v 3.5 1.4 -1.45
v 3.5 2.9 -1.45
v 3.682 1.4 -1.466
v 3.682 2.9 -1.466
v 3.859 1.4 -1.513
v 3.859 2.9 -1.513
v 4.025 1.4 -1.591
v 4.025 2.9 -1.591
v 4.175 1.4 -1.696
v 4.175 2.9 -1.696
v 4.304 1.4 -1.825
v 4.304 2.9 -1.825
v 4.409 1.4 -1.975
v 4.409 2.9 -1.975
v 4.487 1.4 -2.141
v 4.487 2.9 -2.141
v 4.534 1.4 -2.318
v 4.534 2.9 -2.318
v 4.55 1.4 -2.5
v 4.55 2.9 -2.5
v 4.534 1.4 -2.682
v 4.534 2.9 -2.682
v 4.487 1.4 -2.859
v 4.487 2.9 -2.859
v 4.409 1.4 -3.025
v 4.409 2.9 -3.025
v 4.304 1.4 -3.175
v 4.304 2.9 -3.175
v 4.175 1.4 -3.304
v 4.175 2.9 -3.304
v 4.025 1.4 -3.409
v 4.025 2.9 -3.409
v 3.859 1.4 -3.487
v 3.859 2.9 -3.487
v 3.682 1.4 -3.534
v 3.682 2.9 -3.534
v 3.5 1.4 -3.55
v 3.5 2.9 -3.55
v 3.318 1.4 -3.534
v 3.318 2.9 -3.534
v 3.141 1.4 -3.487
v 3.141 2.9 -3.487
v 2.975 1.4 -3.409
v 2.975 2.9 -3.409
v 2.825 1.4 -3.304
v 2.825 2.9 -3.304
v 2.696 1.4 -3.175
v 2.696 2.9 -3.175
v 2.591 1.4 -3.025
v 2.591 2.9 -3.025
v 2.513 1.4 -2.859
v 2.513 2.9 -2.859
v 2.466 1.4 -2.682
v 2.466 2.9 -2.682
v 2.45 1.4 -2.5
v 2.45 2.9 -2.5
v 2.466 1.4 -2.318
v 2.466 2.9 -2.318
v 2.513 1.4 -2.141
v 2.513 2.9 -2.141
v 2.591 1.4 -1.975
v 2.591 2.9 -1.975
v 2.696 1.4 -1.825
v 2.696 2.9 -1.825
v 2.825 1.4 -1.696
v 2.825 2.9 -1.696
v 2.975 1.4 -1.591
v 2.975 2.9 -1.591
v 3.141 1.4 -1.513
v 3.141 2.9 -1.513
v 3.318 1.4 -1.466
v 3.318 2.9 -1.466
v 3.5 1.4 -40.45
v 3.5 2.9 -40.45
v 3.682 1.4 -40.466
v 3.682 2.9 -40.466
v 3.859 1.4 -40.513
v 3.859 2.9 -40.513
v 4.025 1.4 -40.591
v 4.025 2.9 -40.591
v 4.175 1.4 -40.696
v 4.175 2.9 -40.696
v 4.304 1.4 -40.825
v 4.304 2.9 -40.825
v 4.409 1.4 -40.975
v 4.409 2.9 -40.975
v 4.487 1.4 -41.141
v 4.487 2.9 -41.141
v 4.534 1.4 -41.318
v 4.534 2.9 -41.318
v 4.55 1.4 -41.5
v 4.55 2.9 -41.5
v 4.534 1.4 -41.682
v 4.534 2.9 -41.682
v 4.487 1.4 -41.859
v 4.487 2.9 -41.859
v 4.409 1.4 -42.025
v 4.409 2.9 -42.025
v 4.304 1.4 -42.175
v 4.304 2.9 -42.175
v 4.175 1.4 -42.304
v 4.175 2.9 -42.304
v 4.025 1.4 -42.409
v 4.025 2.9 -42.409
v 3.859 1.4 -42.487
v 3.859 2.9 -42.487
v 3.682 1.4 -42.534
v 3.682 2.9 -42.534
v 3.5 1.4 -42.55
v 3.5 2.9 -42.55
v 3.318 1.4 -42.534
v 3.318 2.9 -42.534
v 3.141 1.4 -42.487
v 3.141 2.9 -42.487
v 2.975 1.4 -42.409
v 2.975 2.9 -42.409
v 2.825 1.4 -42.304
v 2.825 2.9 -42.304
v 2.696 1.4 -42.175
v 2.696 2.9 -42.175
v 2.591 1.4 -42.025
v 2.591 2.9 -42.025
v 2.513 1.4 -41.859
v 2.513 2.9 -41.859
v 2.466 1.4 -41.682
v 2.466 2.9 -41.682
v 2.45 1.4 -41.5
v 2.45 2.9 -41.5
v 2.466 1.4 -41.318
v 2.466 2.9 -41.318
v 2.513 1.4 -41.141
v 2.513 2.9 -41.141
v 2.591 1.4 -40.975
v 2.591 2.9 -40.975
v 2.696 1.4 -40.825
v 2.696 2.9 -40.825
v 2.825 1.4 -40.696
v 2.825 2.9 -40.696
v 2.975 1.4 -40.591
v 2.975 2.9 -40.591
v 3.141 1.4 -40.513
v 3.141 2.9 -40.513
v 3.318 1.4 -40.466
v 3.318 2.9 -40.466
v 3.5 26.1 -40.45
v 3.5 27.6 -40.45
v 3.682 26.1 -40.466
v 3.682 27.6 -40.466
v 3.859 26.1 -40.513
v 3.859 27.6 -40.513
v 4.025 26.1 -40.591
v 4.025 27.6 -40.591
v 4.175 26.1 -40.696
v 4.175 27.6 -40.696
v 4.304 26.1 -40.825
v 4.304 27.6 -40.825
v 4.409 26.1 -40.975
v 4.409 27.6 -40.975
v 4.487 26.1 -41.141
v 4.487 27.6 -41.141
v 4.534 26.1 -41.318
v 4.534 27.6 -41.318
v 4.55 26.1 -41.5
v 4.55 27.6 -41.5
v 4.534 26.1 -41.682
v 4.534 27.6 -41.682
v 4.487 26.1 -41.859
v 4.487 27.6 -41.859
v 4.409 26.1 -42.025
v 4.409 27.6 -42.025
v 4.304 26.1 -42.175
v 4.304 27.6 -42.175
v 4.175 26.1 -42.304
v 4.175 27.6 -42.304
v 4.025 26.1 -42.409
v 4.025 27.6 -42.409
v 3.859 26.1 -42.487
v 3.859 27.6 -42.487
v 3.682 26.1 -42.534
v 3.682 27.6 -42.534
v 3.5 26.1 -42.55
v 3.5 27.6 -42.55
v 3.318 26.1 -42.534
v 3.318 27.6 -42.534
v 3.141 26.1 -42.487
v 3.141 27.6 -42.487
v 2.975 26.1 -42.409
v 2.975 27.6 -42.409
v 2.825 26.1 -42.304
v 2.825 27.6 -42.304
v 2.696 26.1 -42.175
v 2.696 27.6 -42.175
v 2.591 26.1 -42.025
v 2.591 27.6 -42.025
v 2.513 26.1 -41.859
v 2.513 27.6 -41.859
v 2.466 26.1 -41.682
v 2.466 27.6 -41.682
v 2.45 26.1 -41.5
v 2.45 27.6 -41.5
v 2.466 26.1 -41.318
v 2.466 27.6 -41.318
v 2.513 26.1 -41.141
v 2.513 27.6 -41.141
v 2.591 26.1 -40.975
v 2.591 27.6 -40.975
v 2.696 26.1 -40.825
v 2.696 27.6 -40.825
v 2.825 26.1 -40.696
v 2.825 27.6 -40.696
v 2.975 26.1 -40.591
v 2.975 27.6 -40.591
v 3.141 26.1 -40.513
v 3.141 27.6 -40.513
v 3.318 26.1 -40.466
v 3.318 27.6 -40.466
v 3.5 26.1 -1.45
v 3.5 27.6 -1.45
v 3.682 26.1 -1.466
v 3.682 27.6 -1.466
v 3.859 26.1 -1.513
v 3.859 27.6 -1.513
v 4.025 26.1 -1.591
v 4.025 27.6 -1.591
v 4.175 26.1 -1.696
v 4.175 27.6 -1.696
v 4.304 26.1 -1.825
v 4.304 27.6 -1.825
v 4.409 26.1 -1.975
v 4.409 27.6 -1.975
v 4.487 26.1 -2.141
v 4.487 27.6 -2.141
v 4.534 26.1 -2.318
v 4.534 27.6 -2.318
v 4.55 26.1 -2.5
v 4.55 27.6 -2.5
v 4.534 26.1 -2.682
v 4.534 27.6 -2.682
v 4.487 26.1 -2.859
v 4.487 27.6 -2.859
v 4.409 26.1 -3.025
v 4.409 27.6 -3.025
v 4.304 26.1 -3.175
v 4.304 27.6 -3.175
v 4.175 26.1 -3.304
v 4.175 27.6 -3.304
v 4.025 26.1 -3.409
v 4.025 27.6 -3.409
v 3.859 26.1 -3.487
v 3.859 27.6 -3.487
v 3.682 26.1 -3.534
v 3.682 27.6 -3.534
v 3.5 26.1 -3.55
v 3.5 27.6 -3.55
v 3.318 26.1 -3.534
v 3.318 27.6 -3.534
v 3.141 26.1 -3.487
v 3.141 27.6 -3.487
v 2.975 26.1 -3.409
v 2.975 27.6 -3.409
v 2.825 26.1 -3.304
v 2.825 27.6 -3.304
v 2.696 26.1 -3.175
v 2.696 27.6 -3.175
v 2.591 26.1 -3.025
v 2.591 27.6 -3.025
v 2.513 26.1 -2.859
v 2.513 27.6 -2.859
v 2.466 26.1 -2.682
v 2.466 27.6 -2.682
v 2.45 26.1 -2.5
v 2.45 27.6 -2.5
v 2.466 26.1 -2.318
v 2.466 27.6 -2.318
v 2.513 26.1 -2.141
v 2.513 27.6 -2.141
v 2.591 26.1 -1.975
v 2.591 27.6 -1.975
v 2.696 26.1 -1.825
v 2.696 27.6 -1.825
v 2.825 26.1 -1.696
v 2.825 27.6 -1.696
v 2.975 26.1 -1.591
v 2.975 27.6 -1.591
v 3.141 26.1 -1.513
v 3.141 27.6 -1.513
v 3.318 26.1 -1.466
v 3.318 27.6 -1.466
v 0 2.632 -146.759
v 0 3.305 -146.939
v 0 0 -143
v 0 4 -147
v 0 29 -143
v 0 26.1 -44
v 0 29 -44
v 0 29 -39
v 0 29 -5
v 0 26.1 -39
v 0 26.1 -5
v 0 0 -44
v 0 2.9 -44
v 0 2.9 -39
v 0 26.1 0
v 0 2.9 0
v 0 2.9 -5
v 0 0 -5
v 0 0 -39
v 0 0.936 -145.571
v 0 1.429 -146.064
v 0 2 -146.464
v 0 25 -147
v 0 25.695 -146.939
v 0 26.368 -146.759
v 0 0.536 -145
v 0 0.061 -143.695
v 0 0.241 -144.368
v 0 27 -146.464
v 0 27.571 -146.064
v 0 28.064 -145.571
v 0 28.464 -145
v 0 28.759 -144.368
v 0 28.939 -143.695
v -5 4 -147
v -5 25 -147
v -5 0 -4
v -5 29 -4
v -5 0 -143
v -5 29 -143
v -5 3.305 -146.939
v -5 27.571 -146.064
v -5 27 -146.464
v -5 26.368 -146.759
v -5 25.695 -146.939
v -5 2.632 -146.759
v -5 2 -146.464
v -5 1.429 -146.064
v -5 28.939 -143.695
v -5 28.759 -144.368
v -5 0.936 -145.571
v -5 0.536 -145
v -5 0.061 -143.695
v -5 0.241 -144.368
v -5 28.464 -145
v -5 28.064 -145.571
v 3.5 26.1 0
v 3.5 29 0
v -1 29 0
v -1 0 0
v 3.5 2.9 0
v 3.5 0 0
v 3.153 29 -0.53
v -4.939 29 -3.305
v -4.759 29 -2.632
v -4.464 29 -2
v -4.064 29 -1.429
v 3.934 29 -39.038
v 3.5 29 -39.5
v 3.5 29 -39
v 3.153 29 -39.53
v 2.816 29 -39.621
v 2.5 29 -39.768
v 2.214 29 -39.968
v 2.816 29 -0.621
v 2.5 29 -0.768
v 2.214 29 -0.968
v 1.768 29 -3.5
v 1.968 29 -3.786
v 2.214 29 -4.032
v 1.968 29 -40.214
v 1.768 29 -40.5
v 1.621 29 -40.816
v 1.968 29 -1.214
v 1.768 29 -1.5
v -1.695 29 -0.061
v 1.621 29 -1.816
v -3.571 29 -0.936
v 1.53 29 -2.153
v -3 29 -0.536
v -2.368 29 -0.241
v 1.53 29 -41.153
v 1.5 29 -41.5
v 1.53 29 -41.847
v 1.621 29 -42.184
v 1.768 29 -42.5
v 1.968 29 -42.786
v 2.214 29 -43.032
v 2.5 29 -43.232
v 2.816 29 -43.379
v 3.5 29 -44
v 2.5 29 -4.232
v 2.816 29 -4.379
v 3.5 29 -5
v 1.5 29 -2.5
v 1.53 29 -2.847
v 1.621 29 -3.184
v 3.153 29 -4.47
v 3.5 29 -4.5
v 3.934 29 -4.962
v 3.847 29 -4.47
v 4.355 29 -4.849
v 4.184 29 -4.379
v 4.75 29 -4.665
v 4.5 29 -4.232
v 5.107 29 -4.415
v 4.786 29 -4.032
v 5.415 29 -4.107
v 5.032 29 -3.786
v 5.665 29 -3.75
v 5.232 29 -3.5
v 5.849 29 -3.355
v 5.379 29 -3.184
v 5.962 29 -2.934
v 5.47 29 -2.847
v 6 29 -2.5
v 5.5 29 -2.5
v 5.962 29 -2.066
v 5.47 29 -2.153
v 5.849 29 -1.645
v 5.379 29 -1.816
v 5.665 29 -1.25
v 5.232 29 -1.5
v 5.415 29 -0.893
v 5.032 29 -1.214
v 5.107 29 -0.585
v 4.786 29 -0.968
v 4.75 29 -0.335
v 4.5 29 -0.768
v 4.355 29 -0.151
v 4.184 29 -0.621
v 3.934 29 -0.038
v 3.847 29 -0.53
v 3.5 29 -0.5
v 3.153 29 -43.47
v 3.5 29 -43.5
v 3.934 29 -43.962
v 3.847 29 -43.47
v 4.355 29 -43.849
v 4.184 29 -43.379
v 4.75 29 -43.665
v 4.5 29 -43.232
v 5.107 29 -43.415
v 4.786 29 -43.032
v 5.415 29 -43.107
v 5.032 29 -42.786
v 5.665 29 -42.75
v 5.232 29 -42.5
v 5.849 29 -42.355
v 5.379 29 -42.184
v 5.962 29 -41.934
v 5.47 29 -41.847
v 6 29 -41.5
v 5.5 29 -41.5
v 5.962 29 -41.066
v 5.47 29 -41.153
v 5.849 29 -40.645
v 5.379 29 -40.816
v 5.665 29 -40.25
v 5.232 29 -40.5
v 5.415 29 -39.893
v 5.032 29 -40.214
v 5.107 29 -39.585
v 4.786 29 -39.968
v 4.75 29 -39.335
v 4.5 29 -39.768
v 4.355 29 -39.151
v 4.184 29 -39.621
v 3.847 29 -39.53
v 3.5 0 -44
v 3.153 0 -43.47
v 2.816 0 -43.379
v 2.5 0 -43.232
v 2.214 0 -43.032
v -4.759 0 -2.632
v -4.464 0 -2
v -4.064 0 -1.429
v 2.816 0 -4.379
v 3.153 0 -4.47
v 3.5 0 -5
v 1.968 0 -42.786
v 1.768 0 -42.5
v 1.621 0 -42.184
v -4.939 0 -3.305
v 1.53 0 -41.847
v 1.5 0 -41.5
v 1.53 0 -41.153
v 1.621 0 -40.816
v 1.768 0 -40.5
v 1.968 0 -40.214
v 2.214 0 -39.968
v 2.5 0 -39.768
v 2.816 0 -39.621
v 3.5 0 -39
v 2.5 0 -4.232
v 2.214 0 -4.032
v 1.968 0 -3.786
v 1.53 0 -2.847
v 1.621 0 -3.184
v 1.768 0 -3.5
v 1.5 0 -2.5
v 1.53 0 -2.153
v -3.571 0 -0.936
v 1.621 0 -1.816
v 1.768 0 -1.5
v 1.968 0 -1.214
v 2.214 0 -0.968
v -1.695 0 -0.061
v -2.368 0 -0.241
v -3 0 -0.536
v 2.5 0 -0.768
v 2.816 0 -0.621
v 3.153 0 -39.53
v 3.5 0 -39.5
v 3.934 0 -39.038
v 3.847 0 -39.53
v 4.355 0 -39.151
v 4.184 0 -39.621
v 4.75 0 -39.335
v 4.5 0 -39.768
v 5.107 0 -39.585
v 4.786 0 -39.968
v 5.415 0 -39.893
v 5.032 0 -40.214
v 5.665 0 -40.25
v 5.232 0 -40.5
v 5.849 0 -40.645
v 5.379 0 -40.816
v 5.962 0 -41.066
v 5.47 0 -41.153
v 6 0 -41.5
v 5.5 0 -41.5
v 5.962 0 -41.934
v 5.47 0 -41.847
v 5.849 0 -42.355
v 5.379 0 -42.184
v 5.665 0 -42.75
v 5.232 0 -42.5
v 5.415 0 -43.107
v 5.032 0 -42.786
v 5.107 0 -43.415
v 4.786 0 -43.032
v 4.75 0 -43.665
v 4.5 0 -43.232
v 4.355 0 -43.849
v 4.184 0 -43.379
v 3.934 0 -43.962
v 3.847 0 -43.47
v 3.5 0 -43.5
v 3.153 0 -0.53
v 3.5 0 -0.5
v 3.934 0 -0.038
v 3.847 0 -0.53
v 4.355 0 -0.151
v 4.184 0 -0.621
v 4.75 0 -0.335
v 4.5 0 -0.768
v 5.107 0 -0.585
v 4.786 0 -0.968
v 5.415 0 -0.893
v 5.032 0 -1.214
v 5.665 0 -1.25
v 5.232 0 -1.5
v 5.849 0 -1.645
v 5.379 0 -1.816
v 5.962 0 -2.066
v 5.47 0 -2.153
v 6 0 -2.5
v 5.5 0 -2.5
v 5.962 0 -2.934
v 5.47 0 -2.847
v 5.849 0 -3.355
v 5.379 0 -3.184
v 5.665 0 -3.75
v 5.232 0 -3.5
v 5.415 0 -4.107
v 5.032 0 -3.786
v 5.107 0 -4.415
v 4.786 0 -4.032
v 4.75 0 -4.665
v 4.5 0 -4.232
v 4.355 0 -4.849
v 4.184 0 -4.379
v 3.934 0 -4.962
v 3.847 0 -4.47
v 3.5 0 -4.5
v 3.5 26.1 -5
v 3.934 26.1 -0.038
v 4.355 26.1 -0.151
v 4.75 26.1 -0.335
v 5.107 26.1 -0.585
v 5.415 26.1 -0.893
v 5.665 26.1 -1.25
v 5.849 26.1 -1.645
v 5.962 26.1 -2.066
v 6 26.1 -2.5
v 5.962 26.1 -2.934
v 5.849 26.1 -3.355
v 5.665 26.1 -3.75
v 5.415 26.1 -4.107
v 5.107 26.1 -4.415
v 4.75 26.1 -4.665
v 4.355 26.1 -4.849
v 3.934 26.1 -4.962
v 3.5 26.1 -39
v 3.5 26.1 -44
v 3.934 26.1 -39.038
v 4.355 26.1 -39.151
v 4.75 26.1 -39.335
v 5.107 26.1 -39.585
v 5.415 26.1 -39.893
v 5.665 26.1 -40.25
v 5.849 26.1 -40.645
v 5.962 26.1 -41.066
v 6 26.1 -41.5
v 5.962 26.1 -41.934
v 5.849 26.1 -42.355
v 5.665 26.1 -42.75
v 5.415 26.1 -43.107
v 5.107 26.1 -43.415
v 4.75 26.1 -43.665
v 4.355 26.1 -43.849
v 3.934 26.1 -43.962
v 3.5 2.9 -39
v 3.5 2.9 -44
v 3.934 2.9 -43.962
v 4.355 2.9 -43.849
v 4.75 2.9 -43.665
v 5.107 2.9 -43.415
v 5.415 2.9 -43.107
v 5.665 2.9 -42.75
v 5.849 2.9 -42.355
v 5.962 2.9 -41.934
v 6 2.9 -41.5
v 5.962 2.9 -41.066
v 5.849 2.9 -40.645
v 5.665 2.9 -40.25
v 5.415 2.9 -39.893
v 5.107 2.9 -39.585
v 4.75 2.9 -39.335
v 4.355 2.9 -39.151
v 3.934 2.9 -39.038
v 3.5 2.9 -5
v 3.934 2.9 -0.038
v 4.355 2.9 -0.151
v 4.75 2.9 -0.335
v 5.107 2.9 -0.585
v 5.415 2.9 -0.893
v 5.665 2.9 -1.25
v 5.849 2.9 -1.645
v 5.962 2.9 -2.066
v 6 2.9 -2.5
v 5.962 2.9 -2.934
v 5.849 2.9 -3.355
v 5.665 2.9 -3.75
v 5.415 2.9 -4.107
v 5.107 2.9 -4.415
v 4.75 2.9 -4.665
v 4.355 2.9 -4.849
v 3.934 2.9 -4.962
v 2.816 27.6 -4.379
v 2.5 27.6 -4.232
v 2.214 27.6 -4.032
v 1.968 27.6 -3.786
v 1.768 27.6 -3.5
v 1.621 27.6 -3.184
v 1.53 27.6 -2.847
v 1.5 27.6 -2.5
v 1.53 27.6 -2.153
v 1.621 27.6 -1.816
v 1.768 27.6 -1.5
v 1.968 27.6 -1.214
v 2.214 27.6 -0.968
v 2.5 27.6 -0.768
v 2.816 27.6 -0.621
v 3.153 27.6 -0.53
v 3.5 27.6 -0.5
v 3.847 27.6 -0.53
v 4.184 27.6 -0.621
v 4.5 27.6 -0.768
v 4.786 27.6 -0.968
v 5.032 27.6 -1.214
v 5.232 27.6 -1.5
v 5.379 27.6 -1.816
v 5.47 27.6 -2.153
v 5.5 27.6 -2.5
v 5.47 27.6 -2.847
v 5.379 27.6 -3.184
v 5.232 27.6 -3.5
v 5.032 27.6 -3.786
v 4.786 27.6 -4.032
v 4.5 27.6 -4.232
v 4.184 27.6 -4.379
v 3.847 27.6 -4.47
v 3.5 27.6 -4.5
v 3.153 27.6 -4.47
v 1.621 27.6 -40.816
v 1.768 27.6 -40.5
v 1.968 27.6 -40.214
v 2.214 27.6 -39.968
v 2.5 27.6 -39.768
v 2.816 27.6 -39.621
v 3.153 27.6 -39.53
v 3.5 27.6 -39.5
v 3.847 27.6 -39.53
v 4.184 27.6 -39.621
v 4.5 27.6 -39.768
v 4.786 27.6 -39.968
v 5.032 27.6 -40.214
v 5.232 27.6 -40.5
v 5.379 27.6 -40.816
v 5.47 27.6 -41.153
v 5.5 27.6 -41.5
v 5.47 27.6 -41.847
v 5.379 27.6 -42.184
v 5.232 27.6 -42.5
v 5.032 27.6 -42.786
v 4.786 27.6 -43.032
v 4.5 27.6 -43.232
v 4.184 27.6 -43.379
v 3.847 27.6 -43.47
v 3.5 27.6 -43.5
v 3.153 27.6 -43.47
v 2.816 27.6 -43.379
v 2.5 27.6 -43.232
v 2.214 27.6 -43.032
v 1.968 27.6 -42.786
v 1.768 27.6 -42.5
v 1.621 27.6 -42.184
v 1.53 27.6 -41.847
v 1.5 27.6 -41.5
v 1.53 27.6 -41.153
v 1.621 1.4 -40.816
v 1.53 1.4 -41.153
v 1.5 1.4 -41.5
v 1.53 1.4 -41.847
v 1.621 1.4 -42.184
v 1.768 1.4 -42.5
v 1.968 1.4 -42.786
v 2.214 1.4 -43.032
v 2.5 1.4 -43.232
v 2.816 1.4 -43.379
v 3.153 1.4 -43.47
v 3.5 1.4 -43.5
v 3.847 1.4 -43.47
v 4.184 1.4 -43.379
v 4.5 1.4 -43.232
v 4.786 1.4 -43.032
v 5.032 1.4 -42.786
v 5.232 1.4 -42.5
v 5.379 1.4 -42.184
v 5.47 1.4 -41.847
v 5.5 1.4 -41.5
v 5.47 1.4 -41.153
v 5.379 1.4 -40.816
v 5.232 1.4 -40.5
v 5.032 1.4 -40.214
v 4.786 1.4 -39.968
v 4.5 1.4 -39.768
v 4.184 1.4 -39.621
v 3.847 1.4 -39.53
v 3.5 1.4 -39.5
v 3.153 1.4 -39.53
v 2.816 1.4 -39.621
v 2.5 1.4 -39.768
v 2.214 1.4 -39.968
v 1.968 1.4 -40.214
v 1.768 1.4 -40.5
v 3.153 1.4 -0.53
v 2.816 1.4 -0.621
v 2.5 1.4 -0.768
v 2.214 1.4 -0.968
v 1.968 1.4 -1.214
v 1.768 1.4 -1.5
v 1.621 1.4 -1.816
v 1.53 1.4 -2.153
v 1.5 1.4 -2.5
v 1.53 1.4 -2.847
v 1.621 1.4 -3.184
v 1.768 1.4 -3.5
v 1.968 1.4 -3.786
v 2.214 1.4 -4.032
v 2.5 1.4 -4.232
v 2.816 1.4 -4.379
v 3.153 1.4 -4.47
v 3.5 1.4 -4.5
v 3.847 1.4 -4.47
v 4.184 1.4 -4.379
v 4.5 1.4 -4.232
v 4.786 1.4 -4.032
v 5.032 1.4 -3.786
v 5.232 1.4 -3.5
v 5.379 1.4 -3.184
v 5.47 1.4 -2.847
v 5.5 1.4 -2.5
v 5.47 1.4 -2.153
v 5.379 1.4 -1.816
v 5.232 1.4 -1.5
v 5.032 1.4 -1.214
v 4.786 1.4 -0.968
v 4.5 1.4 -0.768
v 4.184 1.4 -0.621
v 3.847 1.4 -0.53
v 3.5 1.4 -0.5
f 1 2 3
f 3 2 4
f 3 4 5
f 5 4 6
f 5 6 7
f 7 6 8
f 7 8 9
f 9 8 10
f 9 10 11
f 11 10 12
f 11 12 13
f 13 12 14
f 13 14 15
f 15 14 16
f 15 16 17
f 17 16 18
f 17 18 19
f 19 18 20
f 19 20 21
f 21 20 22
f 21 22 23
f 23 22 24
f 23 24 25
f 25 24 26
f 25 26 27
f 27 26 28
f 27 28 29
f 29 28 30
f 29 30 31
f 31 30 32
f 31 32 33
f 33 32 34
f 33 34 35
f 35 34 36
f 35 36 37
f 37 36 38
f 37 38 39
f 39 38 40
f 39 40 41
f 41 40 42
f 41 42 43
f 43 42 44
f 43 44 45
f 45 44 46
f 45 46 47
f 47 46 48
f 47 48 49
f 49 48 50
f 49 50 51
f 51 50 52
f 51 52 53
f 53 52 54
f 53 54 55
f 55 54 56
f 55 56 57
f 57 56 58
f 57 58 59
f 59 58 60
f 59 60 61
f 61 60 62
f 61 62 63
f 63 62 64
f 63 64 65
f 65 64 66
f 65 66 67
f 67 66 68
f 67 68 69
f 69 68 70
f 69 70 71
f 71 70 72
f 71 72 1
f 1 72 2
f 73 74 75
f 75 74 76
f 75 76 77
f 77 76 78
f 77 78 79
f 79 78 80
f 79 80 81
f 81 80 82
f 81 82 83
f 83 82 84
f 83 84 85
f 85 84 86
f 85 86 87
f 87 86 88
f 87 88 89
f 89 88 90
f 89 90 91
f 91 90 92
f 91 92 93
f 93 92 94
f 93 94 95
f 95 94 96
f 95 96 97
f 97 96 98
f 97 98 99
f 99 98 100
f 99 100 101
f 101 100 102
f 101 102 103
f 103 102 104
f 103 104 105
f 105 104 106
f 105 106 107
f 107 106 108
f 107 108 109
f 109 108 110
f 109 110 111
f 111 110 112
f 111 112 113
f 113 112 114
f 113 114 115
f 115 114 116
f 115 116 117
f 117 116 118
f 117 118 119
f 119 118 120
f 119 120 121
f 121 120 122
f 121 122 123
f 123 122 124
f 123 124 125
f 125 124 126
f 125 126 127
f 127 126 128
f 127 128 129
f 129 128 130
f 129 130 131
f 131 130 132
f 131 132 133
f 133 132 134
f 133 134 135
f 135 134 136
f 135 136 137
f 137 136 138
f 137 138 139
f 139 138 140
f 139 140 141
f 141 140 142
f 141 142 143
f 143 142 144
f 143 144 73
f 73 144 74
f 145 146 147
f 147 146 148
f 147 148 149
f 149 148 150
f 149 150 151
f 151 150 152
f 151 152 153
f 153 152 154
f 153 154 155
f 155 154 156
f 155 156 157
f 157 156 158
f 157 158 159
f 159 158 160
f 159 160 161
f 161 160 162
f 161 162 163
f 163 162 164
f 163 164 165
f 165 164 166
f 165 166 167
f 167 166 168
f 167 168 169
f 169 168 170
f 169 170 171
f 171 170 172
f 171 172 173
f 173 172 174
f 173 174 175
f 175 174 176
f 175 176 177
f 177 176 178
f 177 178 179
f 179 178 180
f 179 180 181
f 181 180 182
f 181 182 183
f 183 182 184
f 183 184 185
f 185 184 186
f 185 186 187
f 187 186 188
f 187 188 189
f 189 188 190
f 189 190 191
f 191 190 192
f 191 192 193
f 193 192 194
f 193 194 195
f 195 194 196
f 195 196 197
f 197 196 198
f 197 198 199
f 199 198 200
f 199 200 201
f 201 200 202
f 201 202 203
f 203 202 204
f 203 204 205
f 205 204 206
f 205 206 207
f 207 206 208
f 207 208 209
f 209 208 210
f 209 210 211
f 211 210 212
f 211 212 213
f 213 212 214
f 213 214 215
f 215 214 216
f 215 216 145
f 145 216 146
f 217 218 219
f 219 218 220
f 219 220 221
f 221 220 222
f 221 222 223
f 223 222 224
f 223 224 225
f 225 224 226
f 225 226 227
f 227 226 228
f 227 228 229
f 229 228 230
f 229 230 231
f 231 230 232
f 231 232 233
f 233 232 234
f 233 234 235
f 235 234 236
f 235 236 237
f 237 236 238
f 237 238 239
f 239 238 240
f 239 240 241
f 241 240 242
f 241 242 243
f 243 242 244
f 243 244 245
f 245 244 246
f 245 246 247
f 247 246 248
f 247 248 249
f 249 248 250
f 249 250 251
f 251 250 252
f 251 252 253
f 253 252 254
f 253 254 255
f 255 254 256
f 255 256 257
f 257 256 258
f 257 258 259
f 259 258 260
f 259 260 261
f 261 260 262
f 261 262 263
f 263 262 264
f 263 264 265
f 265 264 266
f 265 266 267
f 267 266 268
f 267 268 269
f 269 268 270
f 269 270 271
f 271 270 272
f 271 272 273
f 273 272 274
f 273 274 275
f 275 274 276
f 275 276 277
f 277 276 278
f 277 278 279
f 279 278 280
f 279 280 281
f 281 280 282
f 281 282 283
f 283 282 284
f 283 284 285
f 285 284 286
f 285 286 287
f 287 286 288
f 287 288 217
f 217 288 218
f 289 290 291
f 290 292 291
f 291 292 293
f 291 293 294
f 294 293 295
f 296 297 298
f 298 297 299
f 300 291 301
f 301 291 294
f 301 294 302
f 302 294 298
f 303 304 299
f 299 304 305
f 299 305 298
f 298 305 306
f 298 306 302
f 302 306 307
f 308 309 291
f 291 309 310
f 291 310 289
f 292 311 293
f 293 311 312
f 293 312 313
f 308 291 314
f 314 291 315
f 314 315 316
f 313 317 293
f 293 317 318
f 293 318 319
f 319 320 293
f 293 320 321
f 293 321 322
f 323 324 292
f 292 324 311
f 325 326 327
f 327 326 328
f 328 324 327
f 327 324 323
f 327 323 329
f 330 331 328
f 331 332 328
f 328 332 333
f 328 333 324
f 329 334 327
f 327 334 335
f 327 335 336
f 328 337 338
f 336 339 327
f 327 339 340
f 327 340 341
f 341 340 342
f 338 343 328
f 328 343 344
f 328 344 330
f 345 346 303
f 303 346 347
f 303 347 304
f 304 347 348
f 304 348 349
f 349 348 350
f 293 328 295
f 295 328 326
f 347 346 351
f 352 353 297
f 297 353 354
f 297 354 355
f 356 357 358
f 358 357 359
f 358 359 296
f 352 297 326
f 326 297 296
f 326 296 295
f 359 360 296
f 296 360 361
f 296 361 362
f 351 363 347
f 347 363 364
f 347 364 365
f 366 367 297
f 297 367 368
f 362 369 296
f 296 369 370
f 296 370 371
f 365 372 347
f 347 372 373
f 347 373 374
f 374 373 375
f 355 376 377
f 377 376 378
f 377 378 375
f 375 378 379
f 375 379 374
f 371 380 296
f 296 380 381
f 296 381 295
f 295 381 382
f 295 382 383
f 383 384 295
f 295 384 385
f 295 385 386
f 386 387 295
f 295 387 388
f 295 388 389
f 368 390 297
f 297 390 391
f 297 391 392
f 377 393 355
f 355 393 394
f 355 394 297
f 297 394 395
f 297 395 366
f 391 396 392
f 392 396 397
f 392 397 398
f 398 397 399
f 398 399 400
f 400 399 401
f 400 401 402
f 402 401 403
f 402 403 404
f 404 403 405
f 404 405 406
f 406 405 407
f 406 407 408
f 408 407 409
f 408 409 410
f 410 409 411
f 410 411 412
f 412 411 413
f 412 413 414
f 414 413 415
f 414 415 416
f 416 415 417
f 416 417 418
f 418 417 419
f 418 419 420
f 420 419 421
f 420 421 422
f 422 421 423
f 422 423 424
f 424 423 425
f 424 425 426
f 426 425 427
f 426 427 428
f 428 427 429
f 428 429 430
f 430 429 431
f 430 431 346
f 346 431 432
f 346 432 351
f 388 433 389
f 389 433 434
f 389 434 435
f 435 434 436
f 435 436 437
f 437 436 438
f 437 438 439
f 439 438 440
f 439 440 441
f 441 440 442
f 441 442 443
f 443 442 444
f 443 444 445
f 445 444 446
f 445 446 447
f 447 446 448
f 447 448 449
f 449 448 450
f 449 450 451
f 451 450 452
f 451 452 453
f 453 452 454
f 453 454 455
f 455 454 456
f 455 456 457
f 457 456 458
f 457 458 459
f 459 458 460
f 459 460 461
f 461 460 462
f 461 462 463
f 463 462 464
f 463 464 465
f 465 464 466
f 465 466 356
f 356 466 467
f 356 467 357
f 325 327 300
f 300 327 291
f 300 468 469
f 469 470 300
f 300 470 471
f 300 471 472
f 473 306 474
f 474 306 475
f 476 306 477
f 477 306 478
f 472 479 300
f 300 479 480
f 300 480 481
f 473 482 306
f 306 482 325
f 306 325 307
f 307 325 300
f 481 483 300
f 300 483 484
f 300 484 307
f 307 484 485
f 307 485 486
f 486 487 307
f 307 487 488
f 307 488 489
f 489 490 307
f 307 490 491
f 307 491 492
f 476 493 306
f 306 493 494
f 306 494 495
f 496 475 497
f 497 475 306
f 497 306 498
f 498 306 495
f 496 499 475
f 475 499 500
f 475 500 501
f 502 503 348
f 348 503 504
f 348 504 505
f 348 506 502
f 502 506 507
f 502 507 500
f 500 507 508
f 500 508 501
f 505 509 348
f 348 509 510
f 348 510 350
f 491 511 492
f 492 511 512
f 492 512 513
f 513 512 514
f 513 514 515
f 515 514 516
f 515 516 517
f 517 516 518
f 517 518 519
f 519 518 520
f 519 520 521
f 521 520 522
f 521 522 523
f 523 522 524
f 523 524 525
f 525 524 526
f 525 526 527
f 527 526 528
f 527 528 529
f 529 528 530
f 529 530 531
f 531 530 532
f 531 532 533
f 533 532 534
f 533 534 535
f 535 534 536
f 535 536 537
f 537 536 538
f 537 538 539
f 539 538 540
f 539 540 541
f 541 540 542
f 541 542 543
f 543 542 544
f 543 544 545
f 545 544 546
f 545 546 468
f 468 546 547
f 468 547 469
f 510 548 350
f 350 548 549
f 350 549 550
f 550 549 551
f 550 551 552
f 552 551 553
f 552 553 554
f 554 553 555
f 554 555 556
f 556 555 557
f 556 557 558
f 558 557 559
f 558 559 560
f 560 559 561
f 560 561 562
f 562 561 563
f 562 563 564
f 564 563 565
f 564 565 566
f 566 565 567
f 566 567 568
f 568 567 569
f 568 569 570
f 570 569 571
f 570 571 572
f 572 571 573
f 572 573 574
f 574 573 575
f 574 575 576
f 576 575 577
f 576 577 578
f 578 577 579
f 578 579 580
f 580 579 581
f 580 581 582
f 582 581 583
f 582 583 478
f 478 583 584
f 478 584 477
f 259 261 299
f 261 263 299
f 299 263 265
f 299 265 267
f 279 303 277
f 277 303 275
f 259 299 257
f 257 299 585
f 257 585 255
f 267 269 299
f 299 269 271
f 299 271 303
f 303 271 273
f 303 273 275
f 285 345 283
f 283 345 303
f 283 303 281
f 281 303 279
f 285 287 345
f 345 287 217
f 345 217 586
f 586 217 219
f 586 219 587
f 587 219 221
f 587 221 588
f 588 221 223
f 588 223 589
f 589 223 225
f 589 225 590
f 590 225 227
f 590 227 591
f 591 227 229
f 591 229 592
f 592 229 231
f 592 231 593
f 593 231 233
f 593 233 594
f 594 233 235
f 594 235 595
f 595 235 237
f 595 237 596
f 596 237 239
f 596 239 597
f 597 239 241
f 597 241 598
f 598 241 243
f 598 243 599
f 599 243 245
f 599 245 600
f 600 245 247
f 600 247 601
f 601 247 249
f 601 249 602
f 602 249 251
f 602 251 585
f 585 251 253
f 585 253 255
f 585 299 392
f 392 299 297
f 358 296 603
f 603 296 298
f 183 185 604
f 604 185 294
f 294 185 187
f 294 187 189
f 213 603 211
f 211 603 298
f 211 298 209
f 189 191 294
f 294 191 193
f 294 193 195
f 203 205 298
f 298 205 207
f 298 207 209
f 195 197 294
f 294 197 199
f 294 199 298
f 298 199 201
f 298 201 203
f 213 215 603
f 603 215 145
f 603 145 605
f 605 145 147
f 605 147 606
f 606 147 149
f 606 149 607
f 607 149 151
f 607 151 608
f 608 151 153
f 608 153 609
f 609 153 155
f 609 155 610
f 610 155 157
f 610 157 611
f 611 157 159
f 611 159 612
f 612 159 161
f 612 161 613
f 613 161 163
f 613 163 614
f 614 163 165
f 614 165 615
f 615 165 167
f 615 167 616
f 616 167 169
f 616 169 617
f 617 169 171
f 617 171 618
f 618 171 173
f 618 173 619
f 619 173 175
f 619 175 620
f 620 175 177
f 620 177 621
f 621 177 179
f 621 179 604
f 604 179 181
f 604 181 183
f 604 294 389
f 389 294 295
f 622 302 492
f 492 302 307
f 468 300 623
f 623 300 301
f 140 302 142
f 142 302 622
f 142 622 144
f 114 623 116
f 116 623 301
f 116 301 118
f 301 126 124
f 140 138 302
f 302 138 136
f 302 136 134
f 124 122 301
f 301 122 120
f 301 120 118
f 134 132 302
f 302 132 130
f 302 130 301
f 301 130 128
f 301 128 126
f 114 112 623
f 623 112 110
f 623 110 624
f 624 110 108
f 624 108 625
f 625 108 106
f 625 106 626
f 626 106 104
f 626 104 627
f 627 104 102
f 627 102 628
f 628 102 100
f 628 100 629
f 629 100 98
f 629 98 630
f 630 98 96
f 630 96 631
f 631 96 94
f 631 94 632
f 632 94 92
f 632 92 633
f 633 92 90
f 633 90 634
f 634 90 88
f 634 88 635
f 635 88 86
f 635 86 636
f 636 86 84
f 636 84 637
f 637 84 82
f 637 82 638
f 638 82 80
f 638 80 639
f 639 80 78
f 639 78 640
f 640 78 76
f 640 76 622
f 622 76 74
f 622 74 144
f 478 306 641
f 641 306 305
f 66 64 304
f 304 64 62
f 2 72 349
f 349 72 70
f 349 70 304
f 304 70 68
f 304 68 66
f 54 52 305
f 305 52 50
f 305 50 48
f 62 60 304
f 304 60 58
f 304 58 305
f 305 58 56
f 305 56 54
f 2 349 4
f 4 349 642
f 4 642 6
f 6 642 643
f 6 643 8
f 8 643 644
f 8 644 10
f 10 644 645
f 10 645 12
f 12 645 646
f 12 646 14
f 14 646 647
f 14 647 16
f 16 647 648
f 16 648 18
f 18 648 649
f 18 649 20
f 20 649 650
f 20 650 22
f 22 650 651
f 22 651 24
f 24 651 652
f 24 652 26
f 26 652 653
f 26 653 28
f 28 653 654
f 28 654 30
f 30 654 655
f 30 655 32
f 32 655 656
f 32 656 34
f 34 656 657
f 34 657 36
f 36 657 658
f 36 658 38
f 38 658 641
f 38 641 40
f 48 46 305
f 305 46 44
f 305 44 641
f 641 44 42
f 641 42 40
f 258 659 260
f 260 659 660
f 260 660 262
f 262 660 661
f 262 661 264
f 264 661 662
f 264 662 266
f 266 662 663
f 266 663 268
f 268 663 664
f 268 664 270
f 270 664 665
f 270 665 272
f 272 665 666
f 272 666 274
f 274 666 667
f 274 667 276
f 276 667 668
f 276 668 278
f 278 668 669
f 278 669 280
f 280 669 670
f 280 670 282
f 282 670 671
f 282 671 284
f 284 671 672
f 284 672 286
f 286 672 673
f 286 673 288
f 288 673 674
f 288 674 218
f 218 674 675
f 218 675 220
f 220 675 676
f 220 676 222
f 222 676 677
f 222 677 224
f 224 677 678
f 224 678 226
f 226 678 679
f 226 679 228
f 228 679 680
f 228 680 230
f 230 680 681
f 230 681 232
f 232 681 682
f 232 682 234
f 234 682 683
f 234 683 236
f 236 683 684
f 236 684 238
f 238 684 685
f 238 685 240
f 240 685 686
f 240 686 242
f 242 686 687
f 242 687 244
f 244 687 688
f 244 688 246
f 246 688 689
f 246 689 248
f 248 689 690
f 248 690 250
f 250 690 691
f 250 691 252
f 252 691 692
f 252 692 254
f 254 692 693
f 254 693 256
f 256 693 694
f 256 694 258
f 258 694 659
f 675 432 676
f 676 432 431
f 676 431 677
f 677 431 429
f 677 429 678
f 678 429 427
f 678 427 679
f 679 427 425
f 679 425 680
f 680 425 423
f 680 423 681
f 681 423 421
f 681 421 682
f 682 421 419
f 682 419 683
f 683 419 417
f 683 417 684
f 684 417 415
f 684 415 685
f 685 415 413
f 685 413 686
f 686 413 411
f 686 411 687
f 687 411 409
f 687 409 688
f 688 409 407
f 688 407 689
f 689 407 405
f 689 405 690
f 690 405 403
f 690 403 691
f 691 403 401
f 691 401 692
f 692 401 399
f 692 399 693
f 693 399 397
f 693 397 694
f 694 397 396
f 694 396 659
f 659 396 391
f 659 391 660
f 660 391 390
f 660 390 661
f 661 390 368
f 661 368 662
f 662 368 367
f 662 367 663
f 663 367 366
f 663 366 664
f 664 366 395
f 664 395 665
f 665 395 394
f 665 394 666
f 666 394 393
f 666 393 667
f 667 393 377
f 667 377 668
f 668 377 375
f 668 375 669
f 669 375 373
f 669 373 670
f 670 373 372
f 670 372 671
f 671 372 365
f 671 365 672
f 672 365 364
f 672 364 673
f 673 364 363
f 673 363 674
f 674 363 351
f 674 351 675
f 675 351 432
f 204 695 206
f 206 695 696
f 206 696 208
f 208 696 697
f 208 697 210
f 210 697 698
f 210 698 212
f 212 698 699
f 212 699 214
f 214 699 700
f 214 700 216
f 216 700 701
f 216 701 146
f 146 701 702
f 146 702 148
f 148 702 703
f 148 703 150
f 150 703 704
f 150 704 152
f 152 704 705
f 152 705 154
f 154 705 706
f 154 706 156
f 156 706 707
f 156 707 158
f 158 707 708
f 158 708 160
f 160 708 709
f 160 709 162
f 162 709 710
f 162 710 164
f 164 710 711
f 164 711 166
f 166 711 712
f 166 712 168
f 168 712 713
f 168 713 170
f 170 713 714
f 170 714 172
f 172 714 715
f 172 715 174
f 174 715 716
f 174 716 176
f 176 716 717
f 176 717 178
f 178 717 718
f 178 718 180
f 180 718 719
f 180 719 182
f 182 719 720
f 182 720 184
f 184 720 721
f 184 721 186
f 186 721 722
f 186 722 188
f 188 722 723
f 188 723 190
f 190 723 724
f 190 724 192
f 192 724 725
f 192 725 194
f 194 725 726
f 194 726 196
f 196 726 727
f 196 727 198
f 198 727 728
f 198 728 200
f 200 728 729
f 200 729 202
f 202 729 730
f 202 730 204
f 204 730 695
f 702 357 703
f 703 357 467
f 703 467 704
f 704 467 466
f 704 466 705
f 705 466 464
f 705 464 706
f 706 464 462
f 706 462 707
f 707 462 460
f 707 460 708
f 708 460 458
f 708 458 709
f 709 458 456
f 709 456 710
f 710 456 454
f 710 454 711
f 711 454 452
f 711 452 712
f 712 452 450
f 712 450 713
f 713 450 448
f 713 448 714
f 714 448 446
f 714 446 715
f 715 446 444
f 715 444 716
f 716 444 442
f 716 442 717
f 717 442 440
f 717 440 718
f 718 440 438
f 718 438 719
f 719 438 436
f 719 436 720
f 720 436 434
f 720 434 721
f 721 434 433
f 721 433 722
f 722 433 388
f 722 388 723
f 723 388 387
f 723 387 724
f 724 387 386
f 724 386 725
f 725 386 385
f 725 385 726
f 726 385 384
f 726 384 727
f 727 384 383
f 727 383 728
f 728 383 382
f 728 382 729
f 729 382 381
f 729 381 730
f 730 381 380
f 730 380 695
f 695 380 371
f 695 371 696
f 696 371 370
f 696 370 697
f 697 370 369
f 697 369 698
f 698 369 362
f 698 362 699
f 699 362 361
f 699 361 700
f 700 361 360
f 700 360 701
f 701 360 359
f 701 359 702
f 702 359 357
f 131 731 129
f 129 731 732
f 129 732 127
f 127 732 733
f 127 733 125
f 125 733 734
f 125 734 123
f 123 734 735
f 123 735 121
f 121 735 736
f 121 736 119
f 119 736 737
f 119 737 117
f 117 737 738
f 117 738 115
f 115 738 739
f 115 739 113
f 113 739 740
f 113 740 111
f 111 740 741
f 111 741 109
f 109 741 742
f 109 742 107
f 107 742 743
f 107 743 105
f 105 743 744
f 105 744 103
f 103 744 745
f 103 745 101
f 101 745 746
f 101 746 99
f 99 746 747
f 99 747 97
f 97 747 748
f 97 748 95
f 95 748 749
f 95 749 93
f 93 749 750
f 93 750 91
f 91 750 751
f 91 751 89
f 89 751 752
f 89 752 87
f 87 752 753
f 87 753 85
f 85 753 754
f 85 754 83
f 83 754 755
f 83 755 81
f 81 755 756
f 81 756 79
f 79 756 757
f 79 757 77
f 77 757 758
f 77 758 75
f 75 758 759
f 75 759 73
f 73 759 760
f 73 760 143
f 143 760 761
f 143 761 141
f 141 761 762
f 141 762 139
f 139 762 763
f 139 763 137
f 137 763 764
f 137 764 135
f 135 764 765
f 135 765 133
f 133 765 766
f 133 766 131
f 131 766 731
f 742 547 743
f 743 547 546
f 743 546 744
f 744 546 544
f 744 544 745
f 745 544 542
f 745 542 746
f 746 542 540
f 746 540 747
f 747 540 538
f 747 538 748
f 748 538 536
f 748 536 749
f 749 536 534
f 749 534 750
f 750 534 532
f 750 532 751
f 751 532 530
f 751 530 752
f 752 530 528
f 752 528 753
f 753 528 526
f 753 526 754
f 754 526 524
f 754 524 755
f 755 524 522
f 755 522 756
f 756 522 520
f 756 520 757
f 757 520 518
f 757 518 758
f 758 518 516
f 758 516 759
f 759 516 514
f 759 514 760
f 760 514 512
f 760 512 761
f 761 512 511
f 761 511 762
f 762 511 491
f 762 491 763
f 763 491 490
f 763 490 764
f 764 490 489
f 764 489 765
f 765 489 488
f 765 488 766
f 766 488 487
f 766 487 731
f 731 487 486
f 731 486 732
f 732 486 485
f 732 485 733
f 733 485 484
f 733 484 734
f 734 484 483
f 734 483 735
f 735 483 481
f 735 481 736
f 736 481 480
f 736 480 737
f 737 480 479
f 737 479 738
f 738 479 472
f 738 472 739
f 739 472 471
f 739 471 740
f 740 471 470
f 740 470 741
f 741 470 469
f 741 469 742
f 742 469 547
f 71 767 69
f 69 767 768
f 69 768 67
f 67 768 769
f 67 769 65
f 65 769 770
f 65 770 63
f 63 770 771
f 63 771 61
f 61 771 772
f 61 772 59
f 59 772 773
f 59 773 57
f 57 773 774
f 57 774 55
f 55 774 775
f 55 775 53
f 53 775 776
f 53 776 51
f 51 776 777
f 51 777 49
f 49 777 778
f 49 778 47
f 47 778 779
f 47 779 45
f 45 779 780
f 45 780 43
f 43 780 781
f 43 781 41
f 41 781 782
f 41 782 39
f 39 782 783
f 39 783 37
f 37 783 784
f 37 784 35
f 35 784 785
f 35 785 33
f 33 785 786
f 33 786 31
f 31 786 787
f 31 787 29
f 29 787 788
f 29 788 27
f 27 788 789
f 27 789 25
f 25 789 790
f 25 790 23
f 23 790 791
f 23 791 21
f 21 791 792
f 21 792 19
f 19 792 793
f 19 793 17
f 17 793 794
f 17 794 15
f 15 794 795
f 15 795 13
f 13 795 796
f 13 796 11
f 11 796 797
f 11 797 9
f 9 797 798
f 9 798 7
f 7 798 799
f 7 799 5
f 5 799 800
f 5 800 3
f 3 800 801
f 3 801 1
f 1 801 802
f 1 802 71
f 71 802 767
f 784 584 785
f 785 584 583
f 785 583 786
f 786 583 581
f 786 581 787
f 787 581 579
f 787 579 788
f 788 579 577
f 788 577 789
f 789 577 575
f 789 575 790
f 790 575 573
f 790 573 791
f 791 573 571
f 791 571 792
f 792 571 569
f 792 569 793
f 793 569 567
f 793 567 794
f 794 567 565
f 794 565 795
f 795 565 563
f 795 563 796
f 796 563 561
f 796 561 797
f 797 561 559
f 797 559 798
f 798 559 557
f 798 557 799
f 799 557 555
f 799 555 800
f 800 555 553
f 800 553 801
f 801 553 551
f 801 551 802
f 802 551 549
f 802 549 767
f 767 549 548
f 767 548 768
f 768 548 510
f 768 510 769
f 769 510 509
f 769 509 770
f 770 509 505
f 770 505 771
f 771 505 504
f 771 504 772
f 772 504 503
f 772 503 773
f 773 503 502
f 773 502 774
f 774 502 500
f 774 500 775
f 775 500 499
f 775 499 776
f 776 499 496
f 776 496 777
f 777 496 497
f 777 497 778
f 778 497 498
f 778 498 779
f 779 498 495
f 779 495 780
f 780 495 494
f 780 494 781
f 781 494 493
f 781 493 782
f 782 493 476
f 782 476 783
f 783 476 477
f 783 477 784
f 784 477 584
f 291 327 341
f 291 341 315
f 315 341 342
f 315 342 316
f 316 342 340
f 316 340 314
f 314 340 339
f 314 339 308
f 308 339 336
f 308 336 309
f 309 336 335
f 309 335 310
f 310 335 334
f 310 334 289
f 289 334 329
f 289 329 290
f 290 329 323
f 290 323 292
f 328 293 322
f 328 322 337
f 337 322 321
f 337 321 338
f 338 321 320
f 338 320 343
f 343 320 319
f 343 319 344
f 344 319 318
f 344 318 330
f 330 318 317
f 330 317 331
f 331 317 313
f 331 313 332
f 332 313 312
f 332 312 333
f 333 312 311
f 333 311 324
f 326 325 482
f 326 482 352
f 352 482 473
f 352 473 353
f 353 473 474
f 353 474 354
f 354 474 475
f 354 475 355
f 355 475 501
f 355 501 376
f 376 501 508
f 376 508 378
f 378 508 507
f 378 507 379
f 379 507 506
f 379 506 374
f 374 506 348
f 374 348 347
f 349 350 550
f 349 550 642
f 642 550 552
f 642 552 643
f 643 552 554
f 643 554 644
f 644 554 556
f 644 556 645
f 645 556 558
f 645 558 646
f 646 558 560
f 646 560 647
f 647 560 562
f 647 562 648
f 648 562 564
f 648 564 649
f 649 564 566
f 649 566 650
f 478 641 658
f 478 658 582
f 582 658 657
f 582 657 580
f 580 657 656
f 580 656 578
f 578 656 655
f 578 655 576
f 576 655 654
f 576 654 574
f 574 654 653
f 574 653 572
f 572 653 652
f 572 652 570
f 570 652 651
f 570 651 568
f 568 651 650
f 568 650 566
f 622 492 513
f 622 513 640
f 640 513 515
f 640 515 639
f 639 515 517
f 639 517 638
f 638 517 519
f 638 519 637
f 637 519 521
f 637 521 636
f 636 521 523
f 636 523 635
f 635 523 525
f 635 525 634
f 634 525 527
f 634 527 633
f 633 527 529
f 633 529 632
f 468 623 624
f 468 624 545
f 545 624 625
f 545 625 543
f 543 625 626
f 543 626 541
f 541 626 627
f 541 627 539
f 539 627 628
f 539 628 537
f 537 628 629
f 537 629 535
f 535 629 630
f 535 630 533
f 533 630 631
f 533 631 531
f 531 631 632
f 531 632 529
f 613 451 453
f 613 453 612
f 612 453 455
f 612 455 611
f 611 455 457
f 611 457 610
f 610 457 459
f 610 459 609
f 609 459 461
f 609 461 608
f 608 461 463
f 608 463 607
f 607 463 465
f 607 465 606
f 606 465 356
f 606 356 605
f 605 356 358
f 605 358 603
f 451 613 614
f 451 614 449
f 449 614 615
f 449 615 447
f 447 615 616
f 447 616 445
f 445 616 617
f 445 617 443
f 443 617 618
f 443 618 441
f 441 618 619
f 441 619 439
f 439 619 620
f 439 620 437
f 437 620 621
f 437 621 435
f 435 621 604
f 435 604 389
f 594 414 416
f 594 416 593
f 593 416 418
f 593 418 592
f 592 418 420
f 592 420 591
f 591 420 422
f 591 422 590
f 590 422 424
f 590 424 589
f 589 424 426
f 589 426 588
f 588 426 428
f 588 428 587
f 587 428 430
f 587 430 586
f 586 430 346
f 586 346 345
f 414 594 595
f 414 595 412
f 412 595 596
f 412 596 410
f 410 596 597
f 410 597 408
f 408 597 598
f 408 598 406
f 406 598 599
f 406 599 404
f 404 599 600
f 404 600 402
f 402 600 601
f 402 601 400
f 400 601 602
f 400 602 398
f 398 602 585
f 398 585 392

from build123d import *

# Parameters (mm, degrees)
SKETCH1_W           = 5
SKETCH1_H           = 147
BOSS_EXTRUDE1_DEPTH = 29
SKETCH2_W           = 5
SKETCH2_H           = 2.9
BOSS_EXTRUDE2_DEPTH = 6
SKETCH3_R           = 1.05
CUT_EXTRUDE1_DEPTH  = 150.953326072
SKETCH4_R           = 2
CUT_EXTRUDE2_DEPTH  = 1.4
FILLET1_R           = 4
FILLET2_R           = 2.5


with BuildPart() as part:
    # Sketch1 → Boss-Extrude1 (new body)
    with BuildSketch(Plane(origin=(0, 0, 0), x_dir=(1, 0, 0), z_dir=(0, 1, 0))):
        with Locations((-2.5, 73.5)):
            Rectangle(SKETCH1_W, SKETCH1_H)
    extrude(amount=BOSS_EXTRUDE1_DEPTH)

    # Sketch2 → Boss-Extrude2 (add)
    with BuildSketch(Plane(origin=(0, 0, 0), x_dir=(0, 0, -1), z_dir=(1, 0, 0))):
        with Locations((2.5, 27.55)):
            Rectangle(SKETCH2_W, SKETCH2_H)
        with Locations((41.5, 27.55)):
            Rectangle(SKETCH2_W, SKETCH2_H)
        with Locations((41.5, 1.45)):
            Rectangle(SKETCH2_W, SKETCH2_H)
        with Locations((2.5, 1.45)):
            Rectangle(SKETCH2_W, SKETCH2_H)
    extrude(amount=BOSS_EXTRUDE2_DEPTH)

    # Sketch3 → Cut-Extrude1 (cut, through all)
    with BuildSketch(Plane(origin=(0, 29, 0), x_dir=(1, 0, 0), z_dir=(0, 1, 0))):
        with Locations(Location((3.5, 41.5, 0), (0, 0, 270))):
            Circle(SKETCH3_R)
        with Locations(Location((3.5, 2.5, 0), (0, 0, 270))):
            Circle(SKETCH3_R)
    extrude(amount=-CUT_EXTRUDE1_DEPTH, mode=Mode.SUBTRACT)

    # Sketch4 → Cut-Extrude2 (cut)
    with BuildSketch(Plane(origin=(0, 29, 0), x_dir=(1, 0, 0), z_dir=(0, 1, 0))):
        with Locations(Location((3.5, 41.5, 0), (0, 0, 270))):
            Circle(SKETCH4_R)
        with Locations(Location((3.5, 2.5, 0), (0, 0, 270))):
            Circle(SKETCH4_R)
    cut_extrude2 = extrude(amount=-CUT_EXTRUDE2_DEPTH, mode=Mode.SUBTRACT)

    # Mirror2: Cut-Extrude2 across plane
    add(cut_extrude2.mirror(Plane.ZX.offset(14.5)), mode=Mode.SUBTRACT)

    # Fillet1
    fillet1_edges = [part.edges().sort_by_distance(p)[0] for p in [
        (-2.5, 0, -147),
        (-5, 14.5, 0),
        (-2.5, 29, -147),
    ]]
    fillet(fillet1_edges, radius=FILLET1_R)

    # Fillet2
    fillet2_edges = [part.edges().sort_by_distance(p)[0] for p in [
        (6, 1.45, -5),
        (6, 1.45, 0),
        (6, 1.45, -44),
        (6, 1.45, -39),
        (6, 27.55, -44),
        (6, 27.55, -39),
        (6, 27.55, -5),
        (6, 27.55, 0),
    ]]
    fillet(fillet2_edges, radius=FILLET2_R - 0.0001)  # a hair under: the kernel refuses the full size


solid = part.part
